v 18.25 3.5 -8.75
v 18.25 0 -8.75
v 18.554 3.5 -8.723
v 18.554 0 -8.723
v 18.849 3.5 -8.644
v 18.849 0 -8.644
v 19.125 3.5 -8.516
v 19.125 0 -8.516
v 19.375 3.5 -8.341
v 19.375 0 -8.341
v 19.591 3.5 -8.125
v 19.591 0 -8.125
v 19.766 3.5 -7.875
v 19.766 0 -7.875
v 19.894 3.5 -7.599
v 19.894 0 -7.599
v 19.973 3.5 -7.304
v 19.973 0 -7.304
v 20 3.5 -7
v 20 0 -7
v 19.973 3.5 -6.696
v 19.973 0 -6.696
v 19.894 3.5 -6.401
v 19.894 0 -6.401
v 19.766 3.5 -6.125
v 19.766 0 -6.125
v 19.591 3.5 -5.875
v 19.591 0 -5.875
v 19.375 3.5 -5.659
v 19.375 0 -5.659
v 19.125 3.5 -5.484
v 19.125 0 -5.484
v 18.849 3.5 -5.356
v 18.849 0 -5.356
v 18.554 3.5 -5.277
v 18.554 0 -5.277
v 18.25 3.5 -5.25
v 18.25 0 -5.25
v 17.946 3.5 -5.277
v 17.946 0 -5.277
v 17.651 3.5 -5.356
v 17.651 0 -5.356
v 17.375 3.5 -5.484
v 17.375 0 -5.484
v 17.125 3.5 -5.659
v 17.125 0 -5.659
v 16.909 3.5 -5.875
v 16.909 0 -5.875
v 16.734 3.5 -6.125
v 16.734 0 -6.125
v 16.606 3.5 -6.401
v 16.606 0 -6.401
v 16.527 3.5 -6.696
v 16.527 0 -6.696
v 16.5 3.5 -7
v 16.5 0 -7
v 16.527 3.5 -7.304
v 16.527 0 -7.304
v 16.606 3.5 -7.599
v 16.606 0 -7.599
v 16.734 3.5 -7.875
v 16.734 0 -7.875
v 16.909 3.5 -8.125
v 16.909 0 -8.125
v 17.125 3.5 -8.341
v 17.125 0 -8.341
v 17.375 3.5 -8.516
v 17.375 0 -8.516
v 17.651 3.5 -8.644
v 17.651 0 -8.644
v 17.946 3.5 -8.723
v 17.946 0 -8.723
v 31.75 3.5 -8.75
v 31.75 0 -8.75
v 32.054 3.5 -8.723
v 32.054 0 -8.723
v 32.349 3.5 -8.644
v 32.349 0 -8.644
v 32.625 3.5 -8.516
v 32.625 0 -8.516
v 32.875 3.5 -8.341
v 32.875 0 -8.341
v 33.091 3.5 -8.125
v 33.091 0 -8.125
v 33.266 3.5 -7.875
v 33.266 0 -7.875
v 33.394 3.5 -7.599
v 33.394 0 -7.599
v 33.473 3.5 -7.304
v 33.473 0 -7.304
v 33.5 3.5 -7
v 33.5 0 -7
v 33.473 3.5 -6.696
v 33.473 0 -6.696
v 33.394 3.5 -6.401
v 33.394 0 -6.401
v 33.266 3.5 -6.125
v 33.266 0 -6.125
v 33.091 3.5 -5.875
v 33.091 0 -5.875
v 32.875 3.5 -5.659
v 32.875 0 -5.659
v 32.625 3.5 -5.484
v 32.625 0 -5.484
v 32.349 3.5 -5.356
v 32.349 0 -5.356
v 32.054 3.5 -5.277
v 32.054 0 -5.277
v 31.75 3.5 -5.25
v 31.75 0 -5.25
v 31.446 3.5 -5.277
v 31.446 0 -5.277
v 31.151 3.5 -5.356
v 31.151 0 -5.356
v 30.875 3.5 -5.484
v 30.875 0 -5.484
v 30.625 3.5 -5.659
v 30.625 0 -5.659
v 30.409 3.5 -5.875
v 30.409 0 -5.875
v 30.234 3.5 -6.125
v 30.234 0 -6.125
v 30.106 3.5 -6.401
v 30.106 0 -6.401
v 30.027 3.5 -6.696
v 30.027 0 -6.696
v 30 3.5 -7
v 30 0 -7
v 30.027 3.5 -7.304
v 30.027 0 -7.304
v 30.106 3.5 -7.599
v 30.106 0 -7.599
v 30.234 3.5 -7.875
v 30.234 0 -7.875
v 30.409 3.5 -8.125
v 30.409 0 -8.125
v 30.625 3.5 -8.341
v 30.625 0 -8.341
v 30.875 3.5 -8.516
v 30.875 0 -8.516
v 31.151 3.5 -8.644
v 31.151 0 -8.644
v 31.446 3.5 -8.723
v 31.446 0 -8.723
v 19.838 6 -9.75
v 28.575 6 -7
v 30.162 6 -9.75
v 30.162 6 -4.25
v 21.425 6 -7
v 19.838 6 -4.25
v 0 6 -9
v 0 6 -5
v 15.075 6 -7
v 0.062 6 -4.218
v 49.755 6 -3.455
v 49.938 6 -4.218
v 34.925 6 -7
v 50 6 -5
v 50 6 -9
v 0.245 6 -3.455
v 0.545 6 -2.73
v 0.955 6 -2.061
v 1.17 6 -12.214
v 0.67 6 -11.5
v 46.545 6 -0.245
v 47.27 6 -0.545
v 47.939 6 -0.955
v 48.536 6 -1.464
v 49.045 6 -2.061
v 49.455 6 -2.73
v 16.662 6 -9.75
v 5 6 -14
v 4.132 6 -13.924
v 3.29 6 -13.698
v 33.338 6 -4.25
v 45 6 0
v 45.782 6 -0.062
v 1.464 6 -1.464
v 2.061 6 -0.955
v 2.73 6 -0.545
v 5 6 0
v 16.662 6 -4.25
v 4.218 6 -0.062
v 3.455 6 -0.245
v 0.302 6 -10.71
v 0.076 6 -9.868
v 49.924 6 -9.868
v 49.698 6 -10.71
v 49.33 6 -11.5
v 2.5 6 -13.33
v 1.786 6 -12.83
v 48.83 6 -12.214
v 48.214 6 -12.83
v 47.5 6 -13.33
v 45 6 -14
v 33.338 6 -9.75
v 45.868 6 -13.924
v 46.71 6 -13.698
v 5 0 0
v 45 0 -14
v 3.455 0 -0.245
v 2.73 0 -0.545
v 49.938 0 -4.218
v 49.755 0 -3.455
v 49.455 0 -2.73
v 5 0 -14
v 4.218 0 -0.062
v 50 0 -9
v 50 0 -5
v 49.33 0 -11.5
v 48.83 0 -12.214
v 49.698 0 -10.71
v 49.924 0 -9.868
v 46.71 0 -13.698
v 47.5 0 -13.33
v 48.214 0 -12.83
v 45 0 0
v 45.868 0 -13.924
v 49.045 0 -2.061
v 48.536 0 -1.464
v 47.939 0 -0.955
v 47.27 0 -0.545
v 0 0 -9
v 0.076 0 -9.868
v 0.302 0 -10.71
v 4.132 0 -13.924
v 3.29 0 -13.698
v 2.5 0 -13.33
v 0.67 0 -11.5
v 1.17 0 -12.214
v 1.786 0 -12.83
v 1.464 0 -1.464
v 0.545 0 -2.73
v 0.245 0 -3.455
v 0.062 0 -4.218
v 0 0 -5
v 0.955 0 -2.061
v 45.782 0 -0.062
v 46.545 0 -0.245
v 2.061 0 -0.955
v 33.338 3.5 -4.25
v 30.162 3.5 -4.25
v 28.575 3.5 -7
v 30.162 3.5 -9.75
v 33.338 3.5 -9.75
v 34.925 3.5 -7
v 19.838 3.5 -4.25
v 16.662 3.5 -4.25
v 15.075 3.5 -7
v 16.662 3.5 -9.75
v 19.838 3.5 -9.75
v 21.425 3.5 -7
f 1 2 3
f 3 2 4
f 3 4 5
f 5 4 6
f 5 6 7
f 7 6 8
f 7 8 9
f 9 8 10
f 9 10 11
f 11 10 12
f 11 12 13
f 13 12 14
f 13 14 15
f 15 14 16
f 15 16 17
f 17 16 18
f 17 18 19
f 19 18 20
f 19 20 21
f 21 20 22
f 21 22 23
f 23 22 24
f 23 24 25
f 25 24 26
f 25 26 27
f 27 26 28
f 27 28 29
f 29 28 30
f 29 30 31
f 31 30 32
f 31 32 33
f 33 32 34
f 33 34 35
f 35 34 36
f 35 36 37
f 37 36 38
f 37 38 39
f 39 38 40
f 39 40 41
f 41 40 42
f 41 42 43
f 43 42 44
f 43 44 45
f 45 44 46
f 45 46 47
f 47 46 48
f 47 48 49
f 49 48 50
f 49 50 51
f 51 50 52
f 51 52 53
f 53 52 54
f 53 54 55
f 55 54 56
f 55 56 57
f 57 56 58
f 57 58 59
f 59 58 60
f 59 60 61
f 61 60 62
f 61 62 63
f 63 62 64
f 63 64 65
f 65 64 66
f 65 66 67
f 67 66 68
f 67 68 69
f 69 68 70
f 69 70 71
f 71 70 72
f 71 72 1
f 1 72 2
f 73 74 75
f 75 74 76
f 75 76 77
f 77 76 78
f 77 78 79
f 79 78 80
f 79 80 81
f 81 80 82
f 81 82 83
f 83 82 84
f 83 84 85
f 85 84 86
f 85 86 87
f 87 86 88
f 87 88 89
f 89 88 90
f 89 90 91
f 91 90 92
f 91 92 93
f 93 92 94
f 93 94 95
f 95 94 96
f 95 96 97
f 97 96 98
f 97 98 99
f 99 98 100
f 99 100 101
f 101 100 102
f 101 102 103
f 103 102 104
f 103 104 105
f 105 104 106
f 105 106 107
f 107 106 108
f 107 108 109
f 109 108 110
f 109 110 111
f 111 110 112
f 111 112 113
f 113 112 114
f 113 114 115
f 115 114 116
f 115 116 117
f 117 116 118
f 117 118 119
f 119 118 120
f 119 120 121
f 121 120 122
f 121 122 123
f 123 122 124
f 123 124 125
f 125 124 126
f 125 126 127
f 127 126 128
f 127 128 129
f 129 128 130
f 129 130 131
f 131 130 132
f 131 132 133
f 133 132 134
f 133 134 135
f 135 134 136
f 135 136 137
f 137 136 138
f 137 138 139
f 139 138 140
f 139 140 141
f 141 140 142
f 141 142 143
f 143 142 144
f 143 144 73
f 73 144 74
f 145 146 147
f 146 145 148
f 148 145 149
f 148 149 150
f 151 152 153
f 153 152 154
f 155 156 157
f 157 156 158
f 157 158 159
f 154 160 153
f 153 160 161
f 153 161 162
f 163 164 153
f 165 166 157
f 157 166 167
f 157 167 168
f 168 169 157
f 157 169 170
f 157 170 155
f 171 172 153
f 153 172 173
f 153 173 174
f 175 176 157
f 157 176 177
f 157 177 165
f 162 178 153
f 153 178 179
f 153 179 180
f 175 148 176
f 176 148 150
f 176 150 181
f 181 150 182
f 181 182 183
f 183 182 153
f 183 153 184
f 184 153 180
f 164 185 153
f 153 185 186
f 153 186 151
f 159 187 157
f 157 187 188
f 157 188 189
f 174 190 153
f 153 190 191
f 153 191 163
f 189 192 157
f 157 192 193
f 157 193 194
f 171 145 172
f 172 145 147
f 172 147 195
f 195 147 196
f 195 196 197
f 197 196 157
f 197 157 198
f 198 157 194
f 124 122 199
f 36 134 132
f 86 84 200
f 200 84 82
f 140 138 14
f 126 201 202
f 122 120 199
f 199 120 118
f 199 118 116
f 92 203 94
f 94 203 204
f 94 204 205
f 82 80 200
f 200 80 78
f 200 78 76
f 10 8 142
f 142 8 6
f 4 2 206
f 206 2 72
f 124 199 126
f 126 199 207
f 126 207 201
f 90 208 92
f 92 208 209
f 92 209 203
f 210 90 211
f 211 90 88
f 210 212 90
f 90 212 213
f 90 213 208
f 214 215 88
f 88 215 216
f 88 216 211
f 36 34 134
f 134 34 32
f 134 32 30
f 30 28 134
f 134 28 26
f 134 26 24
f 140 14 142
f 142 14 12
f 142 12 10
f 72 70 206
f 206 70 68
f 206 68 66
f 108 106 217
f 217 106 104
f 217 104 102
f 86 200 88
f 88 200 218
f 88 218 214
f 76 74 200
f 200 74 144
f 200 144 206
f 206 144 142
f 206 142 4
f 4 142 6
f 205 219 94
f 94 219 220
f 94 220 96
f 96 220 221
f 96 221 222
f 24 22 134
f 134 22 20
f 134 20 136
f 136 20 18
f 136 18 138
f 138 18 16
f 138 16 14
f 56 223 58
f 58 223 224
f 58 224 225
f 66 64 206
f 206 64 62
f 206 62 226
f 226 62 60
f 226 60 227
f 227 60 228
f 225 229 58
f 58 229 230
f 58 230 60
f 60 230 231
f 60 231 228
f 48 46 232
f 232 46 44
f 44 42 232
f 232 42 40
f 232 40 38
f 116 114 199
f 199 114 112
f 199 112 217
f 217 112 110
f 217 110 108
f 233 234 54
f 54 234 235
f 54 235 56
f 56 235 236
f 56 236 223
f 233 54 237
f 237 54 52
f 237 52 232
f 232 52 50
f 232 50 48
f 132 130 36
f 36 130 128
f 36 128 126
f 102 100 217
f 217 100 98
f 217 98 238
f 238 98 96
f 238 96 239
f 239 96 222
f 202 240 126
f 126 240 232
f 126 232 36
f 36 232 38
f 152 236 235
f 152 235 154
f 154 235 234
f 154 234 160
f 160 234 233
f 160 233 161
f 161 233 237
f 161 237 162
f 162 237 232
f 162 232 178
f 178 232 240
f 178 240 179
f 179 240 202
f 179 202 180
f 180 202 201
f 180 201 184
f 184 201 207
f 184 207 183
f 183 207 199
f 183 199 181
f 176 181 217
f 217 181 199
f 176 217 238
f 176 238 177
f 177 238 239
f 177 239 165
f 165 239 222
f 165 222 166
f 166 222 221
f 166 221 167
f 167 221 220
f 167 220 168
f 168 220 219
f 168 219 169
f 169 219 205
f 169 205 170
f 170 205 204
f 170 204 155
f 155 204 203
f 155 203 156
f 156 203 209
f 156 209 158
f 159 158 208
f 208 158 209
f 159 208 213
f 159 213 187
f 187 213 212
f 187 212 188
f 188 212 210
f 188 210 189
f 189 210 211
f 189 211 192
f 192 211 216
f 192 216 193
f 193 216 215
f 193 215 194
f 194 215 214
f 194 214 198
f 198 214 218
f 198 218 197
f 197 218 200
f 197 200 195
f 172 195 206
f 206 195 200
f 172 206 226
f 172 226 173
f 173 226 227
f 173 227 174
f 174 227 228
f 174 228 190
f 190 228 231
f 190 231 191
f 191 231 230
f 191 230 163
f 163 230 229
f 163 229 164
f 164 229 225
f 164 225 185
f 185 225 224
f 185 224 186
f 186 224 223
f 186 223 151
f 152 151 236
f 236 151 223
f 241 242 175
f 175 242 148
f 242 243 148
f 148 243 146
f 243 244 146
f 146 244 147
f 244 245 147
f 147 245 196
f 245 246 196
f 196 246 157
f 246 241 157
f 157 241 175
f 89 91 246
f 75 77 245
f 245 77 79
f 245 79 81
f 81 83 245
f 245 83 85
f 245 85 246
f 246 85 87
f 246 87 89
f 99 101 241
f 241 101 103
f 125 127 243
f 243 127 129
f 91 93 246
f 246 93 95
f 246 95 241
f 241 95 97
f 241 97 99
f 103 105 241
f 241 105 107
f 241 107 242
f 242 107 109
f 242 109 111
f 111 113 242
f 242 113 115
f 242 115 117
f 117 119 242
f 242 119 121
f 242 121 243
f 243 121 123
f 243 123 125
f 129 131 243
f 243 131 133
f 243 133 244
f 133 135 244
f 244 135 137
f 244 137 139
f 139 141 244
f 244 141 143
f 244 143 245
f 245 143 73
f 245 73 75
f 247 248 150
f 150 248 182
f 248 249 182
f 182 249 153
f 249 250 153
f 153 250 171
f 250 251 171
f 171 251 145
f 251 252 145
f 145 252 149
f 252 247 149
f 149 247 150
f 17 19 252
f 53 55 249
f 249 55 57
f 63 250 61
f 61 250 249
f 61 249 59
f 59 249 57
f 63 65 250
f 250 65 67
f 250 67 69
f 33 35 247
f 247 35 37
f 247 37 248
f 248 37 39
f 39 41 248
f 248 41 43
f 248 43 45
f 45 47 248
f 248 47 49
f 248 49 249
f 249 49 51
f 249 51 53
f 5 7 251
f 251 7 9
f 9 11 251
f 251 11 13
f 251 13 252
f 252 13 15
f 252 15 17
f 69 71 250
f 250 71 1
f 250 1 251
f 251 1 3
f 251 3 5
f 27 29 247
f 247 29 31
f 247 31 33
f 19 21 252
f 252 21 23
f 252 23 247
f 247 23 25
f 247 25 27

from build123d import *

# Parameters (mm, degrees)
SKETCH1_R           = 1.75
BOSS_EXTRUDE1_DEPTH = 6
CUT_EXTRUDE1_DEPTH  = 2.5


with BuildPart() as part:
    # Sketch1 → Boss-Extrude1 (new body)
    with BuildSketch(Plane(origin=(0, 0, 0), x_dir=(1, 0, 0), z_dir=(0, 1, 0))):
        with BuildLine():
            Line((5, 0), (45, 0))
            ThreePointArc((45, 0), (48.535533906, 1.464466094), (50, 5))
            Line((50, 5), (50, 9))
            ThreePointArc((50, 9), (48.535533906, 12.535533906), (45, 14))
            Line((45, 14), (5, 14))
            ThreePointArc((5, 14), (1.464466094, 12.535533906), (0, 9))
            Line((0, 9), (0, 5))
            ThreePointArc((0, 5), (1.464466094, 1.464466094), (5, 0))
        make_face()
        with Locations((18.25, 7)):
            Circle(SKETCH1_R, mode=Mode.SUBTRACT)
        with Locations((31.75, 7)):
            Circle(SKETCH1_R, mode=Mode.SUBTRACT)
    extrude(amount=BOSS_EXTRUDE1_DEPTH)

    # Sketch2 → Cut-Extrude1 (cut)
    with BuildSketch(Plane(origin=(0, 6, 0), x_dir=(1, 0, 0), z_dir=(0, 1, 0))):
        Polygon((19.83771324, 4.25), (21.425426481, 7), (19.83771324, 9.75), (16.66228676, 9.75), (15.074573519, 7), (16.66228676, 4.25), align=None)
        Polygon((33.33771324, 4.25), (34.925426481, 7), (33.33771324, 9.75), (30.16228676, 9.75), (28.574573519, 7), (30.16228676, 4.25), align=None)
    extrude(amount=-CUT_EXTRUDE1_DEPTH, mode=Mode.SUBTRACT)


solid = part.part
